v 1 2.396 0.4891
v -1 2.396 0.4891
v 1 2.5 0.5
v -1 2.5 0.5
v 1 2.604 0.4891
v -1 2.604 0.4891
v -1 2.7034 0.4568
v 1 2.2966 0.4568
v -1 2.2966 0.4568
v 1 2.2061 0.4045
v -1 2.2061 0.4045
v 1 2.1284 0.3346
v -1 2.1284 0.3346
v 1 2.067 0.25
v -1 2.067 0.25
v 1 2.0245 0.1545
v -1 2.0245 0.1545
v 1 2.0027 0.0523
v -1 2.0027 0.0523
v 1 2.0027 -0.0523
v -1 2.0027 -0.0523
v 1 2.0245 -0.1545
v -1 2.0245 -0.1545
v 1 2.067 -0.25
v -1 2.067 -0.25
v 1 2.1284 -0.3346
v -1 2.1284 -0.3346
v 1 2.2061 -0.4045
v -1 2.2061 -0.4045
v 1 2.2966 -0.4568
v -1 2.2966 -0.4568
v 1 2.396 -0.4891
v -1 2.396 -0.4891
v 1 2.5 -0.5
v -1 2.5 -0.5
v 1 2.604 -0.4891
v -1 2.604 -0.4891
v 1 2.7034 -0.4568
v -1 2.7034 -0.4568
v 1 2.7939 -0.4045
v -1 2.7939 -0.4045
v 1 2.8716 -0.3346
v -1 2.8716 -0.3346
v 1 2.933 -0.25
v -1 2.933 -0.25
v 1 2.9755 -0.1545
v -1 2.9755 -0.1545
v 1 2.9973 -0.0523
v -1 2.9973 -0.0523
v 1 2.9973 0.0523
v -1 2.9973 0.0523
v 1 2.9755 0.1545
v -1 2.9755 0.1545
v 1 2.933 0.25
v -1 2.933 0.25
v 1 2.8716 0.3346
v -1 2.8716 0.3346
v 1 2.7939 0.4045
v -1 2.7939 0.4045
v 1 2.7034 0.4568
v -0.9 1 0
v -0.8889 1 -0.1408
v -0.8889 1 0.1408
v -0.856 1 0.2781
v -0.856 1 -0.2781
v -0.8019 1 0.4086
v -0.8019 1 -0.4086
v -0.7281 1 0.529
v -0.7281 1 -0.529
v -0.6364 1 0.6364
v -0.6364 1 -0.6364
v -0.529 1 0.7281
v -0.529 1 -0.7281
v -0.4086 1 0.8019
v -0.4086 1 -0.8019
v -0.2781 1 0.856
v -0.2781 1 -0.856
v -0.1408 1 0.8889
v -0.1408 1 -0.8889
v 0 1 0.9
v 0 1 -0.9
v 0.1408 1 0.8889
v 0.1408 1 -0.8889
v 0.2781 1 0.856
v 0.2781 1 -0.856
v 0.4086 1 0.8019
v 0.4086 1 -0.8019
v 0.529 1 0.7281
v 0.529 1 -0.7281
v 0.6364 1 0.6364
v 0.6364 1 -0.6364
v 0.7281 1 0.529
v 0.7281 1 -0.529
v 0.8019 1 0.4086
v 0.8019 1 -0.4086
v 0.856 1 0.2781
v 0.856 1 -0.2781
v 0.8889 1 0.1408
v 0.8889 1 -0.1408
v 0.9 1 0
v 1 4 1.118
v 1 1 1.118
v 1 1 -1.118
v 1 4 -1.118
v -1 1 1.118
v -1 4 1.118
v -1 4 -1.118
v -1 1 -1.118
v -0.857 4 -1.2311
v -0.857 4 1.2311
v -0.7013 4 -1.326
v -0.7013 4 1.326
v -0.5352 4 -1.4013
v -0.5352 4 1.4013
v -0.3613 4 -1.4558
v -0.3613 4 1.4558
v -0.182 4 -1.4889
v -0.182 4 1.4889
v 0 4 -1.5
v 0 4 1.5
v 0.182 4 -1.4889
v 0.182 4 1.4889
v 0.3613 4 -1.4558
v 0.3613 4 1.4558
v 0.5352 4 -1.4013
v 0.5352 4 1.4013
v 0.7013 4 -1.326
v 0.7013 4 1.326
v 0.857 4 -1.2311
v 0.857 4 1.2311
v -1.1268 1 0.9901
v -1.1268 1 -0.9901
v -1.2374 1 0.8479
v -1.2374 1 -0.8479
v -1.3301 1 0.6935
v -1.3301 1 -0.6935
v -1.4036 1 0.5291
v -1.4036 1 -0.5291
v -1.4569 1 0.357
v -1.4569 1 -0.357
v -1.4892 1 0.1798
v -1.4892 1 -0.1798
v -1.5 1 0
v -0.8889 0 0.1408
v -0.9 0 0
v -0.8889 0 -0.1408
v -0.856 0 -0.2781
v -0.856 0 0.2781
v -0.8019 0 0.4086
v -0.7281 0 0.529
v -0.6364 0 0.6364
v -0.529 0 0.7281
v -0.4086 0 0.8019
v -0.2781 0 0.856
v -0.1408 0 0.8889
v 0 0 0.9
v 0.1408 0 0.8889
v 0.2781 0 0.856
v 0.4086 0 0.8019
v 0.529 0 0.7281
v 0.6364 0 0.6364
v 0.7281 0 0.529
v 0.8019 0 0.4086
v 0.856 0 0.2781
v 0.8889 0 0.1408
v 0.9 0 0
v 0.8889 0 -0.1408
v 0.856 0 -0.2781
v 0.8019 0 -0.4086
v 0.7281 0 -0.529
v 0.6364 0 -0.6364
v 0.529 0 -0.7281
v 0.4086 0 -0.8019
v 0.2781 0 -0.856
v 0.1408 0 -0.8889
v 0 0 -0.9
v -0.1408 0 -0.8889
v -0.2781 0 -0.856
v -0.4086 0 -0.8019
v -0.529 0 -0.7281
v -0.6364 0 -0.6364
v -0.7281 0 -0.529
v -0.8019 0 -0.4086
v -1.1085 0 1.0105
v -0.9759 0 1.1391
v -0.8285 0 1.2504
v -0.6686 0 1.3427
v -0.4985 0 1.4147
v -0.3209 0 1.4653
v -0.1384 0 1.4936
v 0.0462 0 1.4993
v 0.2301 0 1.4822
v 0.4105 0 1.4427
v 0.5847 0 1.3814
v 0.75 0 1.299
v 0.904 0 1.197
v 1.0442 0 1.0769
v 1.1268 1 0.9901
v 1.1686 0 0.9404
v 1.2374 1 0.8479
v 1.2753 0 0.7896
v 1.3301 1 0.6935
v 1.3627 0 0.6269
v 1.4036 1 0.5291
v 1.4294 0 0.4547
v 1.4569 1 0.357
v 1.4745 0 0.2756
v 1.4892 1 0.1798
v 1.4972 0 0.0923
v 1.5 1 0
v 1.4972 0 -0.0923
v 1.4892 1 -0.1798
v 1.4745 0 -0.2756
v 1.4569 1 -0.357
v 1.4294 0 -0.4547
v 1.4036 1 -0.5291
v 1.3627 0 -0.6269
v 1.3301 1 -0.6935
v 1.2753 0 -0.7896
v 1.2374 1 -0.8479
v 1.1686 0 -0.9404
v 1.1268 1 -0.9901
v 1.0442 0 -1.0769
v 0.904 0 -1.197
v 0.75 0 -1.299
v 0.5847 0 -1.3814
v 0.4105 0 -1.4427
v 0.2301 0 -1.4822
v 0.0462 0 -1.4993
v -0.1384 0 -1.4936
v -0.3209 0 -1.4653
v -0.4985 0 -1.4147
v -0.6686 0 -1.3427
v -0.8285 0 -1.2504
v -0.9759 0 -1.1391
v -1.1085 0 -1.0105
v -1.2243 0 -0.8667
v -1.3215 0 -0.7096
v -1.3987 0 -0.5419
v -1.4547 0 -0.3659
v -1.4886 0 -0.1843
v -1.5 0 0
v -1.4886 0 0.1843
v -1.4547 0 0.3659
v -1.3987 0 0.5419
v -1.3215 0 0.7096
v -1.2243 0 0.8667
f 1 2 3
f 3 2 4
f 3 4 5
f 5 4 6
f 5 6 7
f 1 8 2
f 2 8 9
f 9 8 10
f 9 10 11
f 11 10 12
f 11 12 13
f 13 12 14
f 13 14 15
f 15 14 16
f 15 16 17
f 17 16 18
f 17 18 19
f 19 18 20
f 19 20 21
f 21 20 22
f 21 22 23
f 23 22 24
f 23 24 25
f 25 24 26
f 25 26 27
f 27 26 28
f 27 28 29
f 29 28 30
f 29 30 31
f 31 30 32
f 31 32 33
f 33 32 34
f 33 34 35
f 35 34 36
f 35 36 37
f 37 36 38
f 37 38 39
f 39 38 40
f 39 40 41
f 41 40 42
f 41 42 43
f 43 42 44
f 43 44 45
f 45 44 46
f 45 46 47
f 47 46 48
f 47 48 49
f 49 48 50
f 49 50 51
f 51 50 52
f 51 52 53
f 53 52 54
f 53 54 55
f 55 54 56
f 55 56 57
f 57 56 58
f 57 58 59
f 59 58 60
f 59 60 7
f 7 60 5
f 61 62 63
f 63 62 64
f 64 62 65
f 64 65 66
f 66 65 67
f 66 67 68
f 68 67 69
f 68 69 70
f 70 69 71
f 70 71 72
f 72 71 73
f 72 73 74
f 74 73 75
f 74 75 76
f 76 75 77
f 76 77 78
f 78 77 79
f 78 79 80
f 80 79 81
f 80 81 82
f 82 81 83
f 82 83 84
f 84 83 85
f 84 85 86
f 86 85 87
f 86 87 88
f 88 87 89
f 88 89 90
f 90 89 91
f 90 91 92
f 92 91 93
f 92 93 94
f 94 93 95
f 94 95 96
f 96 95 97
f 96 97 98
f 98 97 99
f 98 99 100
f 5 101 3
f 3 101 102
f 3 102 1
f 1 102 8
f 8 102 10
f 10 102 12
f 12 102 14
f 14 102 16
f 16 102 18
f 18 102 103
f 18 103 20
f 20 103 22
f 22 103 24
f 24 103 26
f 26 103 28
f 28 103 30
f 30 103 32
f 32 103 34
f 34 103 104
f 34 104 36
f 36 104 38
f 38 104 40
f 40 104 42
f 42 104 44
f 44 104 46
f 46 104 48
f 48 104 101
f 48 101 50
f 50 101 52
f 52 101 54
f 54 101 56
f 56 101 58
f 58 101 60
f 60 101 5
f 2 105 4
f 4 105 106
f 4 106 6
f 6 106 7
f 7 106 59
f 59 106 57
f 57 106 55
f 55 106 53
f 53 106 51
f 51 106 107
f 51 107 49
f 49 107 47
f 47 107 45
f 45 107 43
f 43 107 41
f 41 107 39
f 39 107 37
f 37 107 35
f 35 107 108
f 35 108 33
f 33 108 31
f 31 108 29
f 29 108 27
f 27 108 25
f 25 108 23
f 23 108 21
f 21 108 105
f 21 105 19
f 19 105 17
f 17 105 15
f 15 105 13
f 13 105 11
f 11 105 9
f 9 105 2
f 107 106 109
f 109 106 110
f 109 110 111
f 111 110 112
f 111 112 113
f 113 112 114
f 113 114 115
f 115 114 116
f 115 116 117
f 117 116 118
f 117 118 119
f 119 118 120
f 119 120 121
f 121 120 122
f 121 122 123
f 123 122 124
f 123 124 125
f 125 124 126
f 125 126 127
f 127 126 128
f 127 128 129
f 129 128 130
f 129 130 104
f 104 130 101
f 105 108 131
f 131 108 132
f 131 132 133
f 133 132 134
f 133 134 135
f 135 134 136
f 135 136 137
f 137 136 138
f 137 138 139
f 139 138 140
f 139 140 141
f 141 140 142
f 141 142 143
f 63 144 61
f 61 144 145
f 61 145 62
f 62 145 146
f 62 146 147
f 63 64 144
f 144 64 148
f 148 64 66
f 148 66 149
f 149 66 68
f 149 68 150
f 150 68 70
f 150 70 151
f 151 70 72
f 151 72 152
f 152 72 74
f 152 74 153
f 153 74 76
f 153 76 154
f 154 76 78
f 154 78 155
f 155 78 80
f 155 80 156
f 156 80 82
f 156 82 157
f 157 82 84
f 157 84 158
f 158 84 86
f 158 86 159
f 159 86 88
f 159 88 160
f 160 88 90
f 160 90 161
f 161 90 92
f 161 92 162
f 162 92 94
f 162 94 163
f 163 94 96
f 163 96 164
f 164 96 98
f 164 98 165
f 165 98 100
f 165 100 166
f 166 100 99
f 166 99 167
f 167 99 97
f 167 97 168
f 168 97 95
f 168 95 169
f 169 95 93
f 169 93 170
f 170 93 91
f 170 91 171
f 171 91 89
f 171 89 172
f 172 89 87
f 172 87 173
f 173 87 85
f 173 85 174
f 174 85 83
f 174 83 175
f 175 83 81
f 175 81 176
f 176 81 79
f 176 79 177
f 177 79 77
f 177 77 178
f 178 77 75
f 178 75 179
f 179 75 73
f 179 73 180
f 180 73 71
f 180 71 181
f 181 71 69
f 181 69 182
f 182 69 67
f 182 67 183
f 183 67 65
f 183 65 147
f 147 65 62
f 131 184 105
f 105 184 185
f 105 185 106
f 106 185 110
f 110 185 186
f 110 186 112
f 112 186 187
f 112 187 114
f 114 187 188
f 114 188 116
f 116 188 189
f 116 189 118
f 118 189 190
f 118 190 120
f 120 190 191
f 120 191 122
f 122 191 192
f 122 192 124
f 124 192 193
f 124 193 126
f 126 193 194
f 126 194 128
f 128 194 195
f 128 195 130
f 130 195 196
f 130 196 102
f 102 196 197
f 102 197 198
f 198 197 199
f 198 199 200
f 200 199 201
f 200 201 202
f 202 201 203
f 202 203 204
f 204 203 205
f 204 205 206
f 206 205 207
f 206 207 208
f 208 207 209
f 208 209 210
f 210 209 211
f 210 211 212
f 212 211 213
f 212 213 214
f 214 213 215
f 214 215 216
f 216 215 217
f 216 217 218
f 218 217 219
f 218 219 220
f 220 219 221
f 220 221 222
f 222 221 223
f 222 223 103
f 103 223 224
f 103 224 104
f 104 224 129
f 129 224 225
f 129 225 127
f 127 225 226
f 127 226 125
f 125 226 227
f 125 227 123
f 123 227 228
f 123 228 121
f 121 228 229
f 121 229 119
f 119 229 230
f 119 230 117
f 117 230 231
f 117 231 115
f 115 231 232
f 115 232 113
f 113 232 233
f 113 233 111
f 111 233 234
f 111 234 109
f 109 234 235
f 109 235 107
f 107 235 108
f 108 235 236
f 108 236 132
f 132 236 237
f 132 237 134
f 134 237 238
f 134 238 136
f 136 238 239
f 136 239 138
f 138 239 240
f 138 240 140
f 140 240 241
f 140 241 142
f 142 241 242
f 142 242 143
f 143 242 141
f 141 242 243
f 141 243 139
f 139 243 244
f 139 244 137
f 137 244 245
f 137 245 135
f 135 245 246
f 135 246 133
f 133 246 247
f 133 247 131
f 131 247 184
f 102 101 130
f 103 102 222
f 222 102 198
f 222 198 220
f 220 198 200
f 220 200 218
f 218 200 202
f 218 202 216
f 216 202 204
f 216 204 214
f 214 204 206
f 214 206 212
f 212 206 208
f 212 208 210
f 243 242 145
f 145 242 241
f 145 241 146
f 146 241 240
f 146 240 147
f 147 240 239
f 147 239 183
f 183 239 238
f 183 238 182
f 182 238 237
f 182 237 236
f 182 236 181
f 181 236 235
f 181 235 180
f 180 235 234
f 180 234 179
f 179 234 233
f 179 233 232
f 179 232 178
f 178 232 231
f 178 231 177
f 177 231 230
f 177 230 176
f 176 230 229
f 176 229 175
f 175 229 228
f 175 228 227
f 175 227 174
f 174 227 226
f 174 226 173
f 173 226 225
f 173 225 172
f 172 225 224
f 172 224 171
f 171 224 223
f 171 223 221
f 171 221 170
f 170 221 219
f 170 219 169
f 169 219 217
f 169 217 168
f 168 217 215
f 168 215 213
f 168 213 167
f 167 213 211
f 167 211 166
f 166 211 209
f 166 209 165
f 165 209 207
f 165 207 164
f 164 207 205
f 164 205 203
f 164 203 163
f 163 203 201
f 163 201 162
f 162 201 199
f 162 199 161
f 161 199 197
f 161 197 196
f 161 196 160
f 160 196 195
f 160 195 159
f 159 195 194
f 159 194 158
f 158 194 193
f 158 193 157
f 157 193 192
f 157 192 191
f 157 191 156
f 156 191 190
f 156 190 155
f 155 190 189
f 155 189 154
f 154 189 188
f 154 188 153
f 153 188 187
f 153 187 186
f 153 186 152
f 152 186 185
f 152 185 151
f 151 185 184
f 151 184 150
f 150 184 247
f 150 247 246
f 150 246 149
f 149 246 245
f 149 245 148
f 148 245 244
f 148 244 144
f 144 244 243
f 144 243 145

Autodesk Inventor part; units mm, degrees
ref_plane "YZ Plane" through (0, 0, 0) normal (1, 0, 0) x (0, 1, 0)
ref_plane "XZ Plane" through (0, 0, 0) normal (0, 1, 0) x (-1, 0, 0)
ref_plane "XY Plane" through (0, 0, 0) normal (0, 0, 1) x (1, 0, 0)
sketch "스케치2" plane through (0, 0, 0) normal (0, 1, 0) x (-1, 0, 0)
  circle A0 centre (0, 0) radius 1.5
  circle A1 centre (0, 0) radius 0.9
  dimension "d0" = 3
  dimension "d6" = 1.8
extrude "돌출1" add sketch "스케치2" along normal blind 1
sketch "스케치4" plane through (0, 1, 0) normal (0, 1, 0) x (1, 0, 0)
  line L0 (1, -3.1) -> (-1, -3.1)
  line L1 (-1, -3.1) -> (-1, 3.1)
  line L2 (-1, 3.1) -> (1, 3.1)
  line L3 (1, 3.1) -> (1, -3.1)
  line L4 (1, -3.1) -> (-1, 3.1) construction
  line L5 (-1, -3.1) -> (1, 3.1) construction
  circle A0 centre (0, 0) radius 1.5 projected
  point P0 (1, 1.118)
  point P1 (-1, 1.118)
  point P2 (-1, -1.118)
  point P3 (1, -1.118)
  dimension "d7" = 2
extrude "돌출5" add sketch "스케치4" along normal blind 3 contours A0 L1 L3
sketch "스케치6" plane through (1, 1, 1.118) normal (1, 0, 0) x (0, 0, -1)
  circle A0 centre (1.118, 1.5) radius 0.5
  line L0 (0, 3) -> (2.2361, 3) projected
  point P0 (1.118, -1)
  dimension "d22" = 1
  dimension "d23" = 1.5
extrude "돌출6" cut sketch "스케치6" along normal through all both and the other way through all
properties part number "anchor_end_3.0mm_new"
